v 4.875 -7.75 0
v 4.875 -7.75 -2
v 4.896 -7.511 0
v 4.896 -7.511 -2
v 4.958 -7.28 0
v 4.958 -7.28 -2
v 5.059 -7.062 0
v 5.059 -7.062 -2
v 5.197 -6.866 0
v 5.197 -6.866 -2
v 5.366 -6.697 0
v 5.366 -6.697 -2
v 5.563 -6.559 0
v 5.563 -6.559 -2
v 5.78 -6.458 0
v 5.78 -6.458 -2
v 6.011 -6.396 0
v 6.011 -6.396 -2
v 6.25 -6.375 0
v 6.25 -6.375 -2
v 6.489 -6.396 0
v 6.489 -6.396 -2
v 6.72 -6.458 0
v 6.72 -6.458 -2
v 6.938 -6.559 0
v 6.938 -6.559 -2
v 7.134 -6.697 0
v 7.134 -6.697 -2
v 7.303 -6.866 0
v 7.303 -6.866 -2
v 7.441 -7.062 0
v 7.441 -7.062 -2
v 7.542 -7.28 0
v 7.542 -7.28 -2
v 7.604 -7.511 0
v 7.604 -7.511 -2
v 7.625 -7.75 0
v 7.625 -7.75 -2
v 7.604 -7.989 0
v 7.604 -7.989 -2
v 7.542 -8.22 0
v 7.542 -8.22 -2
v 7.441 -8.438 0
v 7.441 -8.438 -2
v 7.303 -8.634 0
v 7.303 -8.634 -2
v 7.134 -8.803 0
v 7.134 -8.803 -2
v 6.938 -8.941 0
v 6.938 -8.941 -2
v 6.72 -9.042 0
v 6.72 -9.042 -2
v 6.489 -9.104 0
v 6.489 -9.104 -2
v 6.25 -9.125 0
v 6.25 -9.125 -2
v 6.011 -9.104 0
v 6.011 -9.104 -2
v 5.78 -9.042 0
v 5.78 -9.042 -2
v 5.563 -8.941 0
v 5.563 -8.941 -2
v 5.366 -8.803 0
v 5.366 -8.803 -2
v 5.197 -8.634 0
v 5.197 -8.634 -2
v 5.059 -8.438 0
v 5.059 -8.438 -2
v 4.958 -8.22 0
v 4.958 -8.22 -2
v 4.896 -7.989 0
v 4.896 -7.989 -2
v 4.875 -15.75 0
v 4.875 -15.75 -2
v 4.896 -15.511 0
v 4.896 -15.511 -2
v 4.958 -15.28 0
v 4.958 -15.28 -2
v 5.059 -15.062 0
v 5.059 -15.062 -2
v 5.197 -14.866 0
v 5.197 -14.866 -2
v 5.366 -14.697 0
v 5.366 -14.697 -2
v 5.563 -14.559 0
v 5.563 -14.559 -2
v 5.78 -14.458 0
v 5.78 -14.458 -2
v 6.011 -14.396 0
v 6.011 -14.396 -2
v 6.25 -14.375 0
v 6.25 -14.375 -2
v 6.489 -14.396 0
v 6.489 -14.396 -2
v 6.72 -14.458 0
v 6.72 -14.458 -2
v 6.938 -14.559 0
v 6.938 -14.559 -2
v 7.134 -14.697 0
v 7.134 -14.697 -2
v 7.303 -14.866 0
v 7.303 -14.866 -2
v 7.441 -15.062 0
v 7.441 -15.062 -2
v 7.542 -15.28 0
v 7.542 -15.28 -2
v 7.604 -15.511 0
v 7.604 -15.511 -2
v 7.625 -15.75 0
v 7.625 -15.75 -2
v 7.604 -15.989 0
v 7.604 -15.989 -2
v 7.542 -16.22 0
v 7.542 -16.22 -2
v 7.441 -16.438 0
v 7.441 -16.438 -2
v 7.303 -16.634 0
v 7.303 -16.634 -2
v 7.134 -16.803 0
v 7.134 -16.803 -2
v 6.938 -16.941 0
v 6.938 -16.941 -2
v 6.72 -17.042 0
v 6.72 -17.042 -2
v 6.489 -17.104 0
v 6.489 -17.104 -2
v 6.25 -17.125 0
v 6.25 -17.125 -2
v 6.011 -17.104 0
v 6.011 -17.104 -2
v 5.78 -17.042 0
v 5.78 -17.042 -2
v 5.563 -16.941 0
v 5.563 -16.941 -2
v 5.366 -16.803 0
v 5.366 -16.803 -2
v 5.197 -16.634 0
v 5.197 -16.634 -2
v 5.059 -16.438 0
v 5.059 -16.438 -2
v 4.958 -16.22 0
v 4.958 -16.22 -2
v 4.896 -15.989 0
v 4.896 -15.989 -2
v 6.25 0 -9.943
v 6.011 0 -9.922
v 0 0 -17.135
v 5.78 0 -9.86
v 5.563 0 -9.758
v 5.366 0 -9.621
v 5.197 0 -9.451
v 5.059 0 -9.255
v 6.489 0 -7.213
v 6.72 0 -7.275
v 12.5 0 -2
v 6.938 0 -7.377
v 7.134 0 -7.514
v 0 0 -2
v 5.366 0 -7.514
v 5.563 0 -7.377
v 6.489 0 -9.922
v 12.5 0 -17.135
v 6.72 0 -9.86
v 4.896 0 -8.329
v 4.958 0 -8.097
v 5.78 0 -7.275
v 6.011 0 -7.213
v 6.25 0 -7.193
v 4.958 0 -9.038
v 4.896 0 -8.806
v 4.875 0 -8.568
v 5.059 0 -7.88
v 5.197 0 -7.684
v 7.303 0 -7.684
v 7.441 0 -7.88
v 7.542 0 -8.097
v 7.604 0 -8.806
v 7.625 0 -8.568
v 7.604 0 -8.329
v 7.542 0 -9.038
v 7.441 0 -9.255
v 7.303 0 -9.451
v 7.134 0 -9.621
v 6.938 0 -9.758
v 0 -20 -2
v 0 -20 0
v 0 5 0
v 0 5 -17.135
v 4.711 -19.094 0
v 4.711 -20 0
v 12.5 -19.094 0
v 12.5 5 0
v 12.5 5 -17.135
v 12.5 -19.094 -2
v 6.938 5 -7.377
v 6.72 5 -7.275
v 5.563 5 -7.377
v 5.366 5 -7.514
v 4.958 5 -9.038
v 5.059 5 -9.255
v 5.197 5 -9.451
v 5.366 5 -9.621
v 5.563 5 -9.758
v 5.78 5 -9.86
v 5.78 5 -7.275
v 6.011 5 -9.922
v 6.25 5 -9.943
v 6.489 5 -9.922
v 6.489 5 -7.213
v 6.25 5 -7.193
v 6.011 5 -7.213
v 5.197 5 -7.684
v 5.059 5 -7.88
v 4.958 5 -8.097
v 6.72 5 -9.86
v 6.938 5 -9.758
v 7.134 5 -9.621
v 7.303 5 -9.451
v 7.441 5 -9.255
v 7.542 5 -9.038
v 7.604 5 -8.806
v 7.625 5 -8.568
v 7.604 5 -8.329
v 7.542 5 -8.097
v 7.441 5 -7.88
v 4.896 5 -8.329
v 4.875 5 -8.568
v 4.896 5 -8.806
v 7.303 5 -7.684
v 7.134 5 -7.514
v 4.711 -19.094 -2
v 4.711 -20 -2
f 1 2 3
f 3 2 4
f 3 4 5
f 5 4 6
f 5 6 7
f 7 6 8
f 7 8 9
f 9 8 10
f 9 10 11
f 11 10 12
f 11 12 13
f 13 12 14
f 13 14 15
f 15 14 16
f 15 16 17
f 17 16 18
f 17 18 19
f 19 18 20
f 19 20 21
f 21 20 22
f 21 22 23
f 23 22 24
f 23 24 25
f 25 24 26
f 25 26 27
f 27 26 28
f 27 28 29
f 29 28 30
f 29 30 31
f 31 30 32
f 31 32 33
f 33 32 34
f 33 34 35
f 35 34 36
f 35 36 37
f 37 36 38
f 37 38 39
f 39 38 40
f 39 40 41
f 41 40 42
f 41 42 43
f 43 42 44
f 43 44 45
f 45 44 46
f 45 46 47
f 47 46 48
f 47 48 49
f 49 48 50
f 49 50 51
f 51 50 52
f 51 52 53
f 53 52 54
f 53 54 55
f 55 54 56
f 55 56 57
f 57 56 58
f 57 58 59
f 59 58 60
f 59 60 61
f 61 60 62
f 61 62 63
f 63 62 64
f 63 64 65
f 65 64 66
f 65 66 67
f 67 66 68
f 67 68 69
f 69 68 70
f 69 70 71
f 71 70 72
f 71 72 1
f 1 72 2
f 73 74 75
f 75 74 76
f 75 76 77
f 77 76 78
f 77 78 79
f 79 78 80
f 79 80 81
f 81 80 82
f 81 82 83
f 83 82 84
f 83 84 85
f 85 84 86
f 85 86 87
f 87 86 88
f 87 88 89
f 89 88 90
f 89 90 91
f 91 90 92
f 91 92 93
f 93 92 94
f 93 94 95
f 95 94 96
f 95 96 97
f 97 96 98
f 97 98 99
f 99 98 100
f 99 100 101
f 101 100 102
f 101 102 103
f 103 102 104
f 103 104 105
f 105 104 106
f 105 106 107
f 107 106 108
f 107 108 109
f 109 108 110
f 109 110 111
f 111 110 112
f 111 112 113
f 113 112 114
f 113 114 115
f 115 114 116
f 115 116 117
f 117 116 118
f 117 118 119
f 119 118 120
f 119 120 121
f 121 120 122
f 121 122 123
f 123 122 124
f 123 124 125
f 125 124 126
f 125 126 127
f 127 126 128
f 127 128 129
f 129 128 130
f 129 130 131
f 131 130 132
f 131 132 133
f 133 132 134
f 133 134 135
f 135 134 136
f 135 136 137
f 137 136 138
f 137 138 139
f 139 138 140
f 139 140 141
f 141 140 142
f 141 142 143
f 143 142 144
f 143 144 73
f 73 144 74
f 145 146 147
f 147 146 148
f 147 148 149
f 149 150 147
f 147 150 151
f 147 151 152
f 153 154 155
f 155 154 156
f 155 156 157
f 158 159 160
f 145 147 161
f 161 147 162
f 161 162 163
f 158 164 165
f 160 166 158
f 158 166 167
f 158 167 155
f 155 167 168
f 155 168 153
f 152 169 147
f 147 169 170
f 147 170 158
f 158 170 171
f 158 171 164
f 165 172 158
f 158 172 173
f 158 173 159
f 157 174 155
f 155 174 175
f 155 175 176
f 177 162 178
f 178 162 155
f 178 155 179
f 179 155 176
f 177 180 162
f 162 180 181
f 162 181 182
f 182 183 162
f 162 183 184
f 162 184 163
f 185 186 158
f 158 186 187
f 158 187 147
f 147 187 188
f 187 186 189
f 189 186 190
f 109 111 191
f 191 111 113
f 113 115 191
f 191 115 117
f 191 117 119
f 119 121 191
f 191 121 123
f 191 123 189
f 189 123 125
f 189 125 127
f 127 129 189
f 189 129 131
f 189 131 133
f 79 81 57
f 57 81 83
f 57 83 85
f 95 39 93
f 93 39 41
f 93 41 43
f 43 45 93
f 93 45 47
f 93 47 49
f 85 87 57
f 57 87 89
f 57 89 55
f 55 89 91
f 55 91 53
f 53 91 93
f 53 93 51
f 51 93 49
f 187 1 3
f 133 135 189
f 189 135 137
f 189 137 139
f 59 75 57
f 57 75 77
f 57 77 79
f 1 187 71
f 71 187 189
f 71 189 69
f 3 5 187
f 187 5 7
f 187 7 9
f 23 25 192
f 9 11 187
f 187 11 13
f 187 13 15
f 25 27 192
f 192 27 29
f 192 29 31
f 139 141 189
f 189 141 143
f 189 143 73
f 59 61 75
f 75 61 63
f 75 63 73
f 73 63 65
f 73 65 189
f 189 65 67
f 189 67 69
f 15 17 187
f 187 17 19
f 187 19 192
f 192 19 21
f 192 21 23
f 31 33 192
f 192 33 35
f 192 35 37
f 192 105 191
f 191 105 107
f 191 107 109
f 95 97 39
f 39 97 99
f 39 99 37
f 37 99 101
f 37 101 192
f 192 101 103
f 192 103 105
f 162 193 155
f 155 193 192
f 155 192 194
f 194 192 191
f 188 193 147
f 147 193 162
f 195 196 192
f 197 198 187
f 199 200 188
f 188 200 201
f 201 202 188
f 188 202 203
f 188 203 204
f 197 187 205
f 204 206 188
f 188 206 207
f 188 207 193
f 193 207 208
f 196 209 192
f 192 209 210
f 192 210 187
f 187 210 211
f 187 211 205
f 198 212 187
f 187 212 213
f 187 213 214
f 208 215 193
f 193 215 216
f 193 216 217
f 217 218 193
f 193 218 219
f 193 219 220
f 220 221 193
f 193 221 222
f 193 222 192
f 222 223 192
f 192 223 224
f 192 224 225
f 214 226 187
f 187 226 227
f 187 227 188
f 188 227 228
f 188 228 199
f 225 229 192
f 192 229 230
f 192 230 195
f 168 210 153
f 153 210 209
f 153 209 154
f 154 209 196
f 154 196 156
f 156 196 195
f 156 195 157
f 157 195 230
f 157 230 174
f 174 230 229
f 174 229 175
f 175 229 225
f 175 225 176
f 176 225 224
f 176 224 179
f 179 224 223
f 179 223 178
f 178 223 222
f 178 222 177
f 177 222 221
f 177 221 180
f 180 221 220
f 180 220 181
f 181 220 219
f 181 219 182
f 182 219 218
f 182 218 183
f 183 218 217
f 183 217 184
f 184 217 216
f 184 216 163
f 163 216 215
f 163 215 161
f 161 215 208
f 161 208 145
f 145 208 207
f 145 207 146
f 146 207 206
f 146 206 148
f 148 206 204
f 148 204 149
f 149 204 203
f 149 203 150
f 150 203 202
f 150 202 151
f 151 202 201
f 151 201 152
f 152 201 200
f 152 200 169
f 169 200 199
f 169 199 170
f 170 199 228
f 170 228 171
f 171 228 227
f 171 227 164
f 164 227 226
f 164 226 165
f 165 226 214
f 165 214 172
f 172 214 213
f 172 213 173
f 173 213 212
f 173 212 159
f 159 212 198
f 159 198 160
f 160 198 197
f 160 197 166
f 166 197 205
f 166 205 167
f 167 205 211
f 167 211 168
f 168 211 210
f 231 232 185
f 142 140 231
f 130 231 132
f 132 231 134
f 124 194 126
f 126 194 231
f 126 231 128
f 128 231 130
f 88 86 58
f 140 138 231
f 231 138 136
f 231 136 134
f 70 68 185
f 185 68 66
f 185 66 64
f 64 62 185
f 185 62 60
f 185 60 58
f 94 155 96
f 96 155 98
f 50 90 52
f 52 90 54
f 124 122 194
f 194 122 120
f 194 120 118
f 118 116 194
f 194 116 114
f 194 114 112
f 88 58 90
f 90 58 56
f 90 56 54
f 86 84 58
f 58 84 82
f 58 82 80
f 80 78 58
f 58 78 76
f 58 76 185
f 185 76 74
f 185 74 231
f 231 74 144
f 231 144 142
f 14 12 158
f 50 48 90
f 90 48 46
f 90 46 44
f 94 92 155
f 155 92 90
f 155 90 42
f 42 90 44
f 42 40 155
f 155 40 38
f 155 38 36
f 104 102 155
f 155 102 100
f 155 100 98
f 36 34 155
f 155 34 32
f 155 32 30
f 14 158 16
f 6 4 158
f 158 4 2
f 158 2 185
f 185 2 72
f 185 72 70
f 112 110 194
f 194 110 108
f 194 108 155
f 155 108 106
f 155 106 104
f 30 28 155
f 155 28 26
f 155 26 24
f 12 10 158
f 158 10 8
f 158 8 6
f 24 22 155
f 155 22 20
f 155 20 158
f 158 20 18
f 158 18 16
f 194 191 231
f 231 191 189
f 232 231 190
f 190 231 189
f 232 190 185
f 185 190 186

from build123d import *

# Parameters (mm, degrees)
SKETCH1_W                  = 12.5
SKETCH1_H                  = 17.135
TABBASE_DEPTH              = 5
SKETCH2_R                  = 1.375
CHASSISMOUNTINGHOLE_DEPTH  = 5
SKETCH3_W                  = 12.5
SKETCH3_H                  = 26
FRONTTAB_DEPTH             = 5
FRONTMOUNTINGHOLESSKETCH_R = 1.375
FRONTMOUNTINGHOLES_DEPTH   = 5
SKETCH4_W                  = 12.5
SKETCH4_H                  = 21
SKETCH4_R                  = 1.375
CUT_EXTRUDE1_DEPTH         = 3
SKETCH6_W                  = 7.78949329
SKETCH6_H                  = 1.90597399
CUT_EXTRUDE2_DEPTH         = 10
SKETCH7_W                  = 4.71050671
SKETCH7_H                  = 1
CUT_EXTRUDE3_DEPTH         = 10


with BuildPart() as part:
    # Sketch1 → tabBase (new body)
    with BuildSketch(Plane(origin=(0, 0, 0), x_dir=(1, 0, 0), z_dir=(0, 1, 0))):
        with Locations((6.25, 8.5675)):
            Rectangle(SKETCH1_W, SKETCH1_H)
    extrude(amount=TABBASE_DEPTH)

    # Sketch2 → chassisMountingHole (cut)
    with BuildSketch(Plane(origin=(0, 5, 0), x_dir=(1, 0, 0), z_dir=(0, 1, 0))):
        with Locations((6.25, 8.5675)):
            Circle(SKETCH2_R)
    extrude(amount=-CHASSISMOUNTINGHOLE_DEPTH, mode=Mode.SUBTRACT)

    # Sketch3 → frontTab (add)
    with BuildSketch(Plane.XY):
        with Locations((6.25, -8)):
            Rectangle(SKETCH3_W, SKETCH3_H)
    extrude(amount=-FRONTTAB_DEPTH)

    # frontMountingHolesSketch → frontMountingHoles (cut)
    with BuildSketch(Plane(origin=(0, 0, -5), x_dir=(-1, 0, 0), z_dir=(0, 0, -1))):
        with Locations((-6.25, -15.75)):
            Circle(FRONTMOUNTINGHOLESSKETCH_R)
        with Locations((-6.25, -7.75)):
            Circle(FRONTMOUNTINGHOLESSKETCH_R)
    extrude(amount=-FRONTMOUNTINGHOLES_DEPTH, mode=Mode.SUBTRACT)

    # Sketch4 → Cut-Extrude1 (cut)
    with BuildSketch(Plane(origin=(0, 0, -5), x_dir=(-1, 0, 0), z_dir=(0, 0, -1))):
        with Locations((-6.25, -10.5)):
            Rectangle(SKETCH4_W, SKETCH4_H)
        with Locations((-6.25, -15.75)):
            Circle(SKETCH4_R, mode=Mode.SUBTRACT)
        with Locations((-6.25, -7.75)):
            Circle(SKETCH4_R, mode=Mode.SUBTRACT)
    extrude(amount=-CUT_EXTRUDE1_DEPTH, mode=Mode.SUBTRACT)

    # Sketch6 → Cut-Extrude2 (cut)
    with BuildSketch(Plane(origin=(0, 0, -2), x_dir=(-1, 0, 0), z_dir=(0, 0, -1))):
        with Locations((-8.605253355, -20.047013005)):
            Rectangle(SKETCH6_W, SKETCH6_H)
    extrude(amount=-CUT_EXTRUDE2_DEPTH, mode=Mode.SUBTRACT)

    # Sketch7 → Cut-Extrude3 (cut)
    with BuildSketch(Plane(origin=(0, 0, -2), x_dir=(-1, 0, 0), z_dir=(0, 0, -1))):
        with Locations((-2.355253355, -20.5)):
            Rectangle(SKETCH7_W, SKETCH7_H)
    extrude(amount=-CUT_EXTRUDE3_DEPTH, mode=Mode.SUBTRACT)


solid = part.part
